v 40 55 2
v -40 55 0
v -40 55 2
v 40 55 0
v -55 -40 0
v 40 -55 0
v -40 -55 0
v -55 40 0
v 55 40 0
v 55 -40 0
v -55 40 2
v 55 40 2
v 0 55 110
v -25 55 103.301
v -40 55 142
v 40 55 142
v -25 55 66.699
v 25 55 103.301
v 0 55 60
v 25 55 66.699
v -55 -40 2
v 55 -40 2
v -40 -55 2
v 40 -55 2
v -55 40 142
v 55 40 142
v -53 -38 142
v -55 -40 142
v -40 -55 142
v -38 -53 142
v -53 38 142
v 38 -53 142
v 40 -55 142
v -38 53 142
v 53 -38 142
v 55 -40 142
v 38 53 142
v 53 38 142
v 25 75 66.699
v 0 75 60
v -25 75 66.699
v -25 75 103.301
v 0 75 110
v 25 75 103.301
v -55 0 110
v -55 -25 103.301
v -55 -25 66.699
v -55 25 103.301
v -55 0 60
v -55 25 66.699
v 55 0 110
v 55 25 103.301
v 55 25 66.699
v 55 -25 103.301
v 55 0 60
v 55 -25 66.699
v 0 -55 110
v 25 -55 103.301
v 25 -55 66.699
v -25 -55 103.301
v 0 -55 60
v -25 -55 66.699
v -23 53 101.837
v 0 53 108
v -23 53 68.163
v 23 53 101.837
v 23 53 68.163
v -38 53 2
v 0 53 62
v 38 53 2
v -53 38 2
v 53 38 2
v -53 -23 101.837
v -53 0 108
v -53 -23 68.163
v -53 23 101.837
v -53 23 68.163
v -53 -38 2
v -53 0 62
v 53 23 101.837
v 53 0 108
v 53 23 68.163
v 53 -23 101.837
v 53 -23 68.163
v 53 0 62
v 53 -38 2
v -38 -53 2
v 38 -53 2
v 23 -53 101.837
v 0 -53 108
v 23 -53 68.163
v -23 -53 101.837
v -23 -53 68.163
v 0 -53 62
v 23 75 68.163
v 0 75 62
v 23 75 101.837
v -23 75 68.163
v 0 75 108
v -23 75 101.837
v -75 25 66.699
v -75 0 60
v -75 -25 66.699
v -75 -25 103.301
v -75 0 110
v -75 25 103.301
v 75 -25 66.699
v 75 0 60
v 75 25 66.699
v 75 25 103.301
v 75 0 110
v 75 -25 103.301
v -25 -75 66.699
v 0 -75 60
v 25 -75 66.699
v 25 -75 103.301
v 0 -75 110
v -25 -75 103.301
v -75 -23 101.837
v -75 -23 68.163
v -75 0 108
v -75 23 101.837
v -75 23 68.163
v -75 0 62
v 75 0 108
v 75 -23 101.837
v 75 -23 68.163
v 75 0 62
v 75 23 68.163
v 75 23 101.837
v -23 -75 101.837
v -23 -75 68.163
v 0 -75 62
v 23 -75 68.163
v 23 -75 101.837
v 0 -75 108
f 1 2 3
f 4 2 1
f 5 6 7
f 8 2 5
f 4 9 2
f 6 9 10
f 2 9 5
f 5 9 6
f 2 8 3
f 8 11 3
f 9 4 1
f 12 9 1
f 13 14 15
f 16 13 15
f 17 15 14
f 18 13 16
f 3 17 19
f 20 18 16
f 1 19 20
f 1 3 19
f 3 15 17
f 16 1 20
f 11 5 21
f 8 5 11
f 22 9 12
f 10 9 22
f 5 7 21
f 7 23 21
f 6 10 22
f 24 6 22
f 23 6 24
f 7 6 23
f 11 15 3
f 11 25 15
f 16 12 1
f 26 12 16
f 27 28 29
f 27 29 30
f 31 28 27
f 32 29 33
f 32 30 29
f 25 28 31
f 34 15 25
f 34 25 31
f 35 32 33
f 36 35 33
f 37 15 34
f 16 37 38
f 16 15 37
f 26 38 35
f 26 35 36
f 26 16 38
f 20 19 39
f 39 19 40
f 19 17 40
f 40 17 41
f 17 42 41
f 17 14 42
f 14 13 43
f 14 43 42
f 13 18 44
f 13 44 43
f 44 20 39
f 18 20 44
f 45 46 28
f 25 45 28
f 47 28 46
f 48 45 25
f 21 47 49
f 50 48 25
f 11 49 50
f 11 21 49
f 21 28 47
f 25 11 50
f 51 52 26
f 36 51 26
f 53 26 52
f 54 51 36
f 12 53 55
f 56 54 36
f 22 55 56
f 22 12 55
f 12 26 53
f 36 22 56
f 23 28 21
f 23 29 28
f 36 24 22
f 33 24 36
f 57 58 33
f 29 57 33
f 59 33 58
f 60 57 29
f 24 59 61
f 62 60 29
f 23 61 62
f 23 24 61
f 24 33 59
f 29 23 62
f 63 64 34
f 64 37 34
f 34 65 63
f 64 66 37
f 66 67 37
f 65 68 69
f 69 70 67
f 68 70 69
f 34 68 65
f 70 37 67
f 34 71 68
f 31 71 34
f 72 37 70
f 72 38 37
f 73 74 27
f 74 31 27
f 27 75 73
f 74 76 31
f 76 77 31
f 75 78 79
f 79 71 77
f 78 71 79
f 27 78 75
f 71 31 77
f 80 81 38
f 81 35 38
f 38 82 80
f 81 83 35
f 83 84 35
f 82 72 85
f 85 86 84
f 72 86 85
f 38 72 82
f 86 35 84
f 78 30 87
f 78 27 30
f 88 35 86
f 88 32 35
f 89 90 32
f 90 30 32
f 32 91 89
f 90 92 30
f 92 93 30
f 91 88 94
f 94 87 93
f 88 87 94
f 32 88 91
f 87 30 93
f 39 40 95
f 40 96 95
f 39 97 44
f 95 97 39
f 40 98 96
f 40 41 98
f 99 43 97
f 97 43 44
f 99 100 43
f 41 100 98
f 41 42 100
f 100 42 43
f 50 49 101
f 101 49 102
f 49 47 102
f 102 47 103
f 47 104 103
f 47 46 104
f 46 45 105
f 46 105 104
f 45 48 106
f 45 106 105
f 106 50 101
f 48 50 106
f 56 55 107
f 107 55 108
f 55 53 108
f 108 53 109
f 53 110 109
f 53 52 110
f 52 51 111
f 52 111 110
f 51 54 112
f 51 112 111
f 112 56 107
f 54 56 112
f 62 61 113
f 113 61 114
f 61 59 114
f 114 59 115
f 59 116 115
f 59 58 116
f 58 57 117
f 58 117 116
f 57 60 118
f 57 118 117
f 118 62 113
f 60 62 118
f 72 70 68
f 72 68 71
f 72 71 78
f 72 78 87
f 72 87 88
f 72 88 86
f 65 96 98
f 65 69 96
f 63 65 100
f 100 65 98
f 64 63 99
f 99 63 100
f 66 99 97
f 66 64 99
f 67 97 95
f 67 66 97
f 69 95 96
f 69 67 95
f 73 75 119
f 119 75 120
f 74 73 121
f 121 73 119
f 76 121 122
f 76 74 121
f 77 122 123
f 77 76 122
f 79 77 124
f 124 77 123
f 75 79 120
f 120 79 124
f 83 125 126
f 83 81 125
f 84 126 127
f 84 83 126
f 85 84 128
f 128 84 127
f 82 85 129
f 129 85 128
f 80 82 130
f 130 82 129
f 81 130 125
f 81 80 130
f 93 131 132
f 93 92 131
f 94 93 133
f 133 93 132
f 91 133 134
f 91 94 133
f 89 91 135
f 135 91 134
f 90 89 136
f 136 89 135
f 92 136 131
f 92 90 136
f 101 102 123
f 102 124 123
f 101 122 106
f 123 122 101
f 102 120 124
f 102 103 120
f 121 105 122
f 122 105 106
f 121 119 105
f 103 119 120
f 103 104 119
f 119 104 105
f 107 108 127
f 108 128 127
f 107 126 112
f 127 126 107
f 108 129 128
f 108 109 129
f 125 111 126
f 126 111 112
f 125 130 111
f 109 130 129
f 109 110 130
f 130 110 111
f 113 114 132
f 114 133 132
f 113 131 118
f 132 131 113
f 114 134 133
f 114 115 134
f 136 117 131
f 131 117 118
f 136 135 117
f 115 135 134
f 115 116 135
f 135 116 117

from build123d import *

# Parameters (mm, degrees)
PAD002_DEPTH          = 100
POLARPATTERN001_COUNT = 4
SKETCH_W              = 110
SKETCH_H              = 110
PAD_DEPTH             = 2
SKETCH001_W           = 110
SKETCH001_H           = 110
SKETCH001_W_2         = 106
SKETCH001_H_2         = 106
PAD001_DEPTH          = 140
PAD003_DEPTH          = 20
POLARPATTERN_COUNT    = 4
CHAMFER_SIZE          = 15


with BuildPart() as body001:
    # Sketch003 → Pad002 (new body)
    with BuildSketch(Plane.XZ):
        Polygon((-23, 68.162831), (-23, 101.837169), (0, 108), (23, 101.837169), (23, 68.162831), (0, 62), align=None)
    pad002 = extrude(amount=PAD002_DEPTH)

    # PolarPattern001: Pad002 ×4 about axis
    polarpattern001_axis = Axis((0, 0, 0), (0, 0, 1))
    for i in range(1, POLARPATTERN001_COUNT):
        add(pad002.rotate(polarpattern001_axis, i * 360 / POLARPATTERN001_COUNT))


with BuildPart() as chamfer_body:
    # Sketch → Pad (new body)
    with BuildSketch(Plane.XY):
        Rectangle(SKETCH_W, SKETCH_H)
    extrude(amount=PAD_DEPTH)

    # Sketch001 (on Face6 of Pad) → Pad001 (join)
    with BuildSketch(Plane.XY.offset(2)):
        Rectangle(SKETCH001_W, SKETCH001_H)
        Rectangle(SKETCH001_W_2, SKETCH001_H_2, mode=Mode.SUBTRACT)
    extrude(amount=PAD001_DEPTH)

    # Sketch002 (on Face10 of Pad001) → Pad003 (join)
    with BuildSketch(Plane.XZ.offset(55)):
        Polygon((-25, 66.69873), (0, 60), (25, 66.69873), (25, 103.30127), (0, 110), (-25, 103.30127), align=None)
    pad003 = extrude(amount=PAD003_DEPTH)

    # PolarPattern: Pad003 ×4 about axis
    polarpattern_axis = Axis((0, 0, 0), (0, 0, 1))
    for i in range(1, POLARPATTERN_COUNT):
        add(pad003.rotate(polarpattern_axis, i * 360 / POLARPATTERN_COUNT))

    # Cut: cut Body001
    add(body001.part, mode=Mode.SUBTRACT)

    # Chamfer
    chamfer_edges = [chamfer_body.edges().sort_by_distance(p)[0] for p in [
        (-55, 55, 1),
        (55, 55, 1),
        (-55, -55, 1),
        (55, -55, 1),
        (-55, 55, 72),
        (55, 55, 72),
        (-55, -55, 72),
        (55, -55, 72),
        (-53, 53, 72),
        (53, 53, 72),
        (53, -53, 72),
        (-53, -53, 72),
    ]]
    chamfer(chamfer_edges, length=CHAMFER_SIZE)


solid = chamfer_body.part
